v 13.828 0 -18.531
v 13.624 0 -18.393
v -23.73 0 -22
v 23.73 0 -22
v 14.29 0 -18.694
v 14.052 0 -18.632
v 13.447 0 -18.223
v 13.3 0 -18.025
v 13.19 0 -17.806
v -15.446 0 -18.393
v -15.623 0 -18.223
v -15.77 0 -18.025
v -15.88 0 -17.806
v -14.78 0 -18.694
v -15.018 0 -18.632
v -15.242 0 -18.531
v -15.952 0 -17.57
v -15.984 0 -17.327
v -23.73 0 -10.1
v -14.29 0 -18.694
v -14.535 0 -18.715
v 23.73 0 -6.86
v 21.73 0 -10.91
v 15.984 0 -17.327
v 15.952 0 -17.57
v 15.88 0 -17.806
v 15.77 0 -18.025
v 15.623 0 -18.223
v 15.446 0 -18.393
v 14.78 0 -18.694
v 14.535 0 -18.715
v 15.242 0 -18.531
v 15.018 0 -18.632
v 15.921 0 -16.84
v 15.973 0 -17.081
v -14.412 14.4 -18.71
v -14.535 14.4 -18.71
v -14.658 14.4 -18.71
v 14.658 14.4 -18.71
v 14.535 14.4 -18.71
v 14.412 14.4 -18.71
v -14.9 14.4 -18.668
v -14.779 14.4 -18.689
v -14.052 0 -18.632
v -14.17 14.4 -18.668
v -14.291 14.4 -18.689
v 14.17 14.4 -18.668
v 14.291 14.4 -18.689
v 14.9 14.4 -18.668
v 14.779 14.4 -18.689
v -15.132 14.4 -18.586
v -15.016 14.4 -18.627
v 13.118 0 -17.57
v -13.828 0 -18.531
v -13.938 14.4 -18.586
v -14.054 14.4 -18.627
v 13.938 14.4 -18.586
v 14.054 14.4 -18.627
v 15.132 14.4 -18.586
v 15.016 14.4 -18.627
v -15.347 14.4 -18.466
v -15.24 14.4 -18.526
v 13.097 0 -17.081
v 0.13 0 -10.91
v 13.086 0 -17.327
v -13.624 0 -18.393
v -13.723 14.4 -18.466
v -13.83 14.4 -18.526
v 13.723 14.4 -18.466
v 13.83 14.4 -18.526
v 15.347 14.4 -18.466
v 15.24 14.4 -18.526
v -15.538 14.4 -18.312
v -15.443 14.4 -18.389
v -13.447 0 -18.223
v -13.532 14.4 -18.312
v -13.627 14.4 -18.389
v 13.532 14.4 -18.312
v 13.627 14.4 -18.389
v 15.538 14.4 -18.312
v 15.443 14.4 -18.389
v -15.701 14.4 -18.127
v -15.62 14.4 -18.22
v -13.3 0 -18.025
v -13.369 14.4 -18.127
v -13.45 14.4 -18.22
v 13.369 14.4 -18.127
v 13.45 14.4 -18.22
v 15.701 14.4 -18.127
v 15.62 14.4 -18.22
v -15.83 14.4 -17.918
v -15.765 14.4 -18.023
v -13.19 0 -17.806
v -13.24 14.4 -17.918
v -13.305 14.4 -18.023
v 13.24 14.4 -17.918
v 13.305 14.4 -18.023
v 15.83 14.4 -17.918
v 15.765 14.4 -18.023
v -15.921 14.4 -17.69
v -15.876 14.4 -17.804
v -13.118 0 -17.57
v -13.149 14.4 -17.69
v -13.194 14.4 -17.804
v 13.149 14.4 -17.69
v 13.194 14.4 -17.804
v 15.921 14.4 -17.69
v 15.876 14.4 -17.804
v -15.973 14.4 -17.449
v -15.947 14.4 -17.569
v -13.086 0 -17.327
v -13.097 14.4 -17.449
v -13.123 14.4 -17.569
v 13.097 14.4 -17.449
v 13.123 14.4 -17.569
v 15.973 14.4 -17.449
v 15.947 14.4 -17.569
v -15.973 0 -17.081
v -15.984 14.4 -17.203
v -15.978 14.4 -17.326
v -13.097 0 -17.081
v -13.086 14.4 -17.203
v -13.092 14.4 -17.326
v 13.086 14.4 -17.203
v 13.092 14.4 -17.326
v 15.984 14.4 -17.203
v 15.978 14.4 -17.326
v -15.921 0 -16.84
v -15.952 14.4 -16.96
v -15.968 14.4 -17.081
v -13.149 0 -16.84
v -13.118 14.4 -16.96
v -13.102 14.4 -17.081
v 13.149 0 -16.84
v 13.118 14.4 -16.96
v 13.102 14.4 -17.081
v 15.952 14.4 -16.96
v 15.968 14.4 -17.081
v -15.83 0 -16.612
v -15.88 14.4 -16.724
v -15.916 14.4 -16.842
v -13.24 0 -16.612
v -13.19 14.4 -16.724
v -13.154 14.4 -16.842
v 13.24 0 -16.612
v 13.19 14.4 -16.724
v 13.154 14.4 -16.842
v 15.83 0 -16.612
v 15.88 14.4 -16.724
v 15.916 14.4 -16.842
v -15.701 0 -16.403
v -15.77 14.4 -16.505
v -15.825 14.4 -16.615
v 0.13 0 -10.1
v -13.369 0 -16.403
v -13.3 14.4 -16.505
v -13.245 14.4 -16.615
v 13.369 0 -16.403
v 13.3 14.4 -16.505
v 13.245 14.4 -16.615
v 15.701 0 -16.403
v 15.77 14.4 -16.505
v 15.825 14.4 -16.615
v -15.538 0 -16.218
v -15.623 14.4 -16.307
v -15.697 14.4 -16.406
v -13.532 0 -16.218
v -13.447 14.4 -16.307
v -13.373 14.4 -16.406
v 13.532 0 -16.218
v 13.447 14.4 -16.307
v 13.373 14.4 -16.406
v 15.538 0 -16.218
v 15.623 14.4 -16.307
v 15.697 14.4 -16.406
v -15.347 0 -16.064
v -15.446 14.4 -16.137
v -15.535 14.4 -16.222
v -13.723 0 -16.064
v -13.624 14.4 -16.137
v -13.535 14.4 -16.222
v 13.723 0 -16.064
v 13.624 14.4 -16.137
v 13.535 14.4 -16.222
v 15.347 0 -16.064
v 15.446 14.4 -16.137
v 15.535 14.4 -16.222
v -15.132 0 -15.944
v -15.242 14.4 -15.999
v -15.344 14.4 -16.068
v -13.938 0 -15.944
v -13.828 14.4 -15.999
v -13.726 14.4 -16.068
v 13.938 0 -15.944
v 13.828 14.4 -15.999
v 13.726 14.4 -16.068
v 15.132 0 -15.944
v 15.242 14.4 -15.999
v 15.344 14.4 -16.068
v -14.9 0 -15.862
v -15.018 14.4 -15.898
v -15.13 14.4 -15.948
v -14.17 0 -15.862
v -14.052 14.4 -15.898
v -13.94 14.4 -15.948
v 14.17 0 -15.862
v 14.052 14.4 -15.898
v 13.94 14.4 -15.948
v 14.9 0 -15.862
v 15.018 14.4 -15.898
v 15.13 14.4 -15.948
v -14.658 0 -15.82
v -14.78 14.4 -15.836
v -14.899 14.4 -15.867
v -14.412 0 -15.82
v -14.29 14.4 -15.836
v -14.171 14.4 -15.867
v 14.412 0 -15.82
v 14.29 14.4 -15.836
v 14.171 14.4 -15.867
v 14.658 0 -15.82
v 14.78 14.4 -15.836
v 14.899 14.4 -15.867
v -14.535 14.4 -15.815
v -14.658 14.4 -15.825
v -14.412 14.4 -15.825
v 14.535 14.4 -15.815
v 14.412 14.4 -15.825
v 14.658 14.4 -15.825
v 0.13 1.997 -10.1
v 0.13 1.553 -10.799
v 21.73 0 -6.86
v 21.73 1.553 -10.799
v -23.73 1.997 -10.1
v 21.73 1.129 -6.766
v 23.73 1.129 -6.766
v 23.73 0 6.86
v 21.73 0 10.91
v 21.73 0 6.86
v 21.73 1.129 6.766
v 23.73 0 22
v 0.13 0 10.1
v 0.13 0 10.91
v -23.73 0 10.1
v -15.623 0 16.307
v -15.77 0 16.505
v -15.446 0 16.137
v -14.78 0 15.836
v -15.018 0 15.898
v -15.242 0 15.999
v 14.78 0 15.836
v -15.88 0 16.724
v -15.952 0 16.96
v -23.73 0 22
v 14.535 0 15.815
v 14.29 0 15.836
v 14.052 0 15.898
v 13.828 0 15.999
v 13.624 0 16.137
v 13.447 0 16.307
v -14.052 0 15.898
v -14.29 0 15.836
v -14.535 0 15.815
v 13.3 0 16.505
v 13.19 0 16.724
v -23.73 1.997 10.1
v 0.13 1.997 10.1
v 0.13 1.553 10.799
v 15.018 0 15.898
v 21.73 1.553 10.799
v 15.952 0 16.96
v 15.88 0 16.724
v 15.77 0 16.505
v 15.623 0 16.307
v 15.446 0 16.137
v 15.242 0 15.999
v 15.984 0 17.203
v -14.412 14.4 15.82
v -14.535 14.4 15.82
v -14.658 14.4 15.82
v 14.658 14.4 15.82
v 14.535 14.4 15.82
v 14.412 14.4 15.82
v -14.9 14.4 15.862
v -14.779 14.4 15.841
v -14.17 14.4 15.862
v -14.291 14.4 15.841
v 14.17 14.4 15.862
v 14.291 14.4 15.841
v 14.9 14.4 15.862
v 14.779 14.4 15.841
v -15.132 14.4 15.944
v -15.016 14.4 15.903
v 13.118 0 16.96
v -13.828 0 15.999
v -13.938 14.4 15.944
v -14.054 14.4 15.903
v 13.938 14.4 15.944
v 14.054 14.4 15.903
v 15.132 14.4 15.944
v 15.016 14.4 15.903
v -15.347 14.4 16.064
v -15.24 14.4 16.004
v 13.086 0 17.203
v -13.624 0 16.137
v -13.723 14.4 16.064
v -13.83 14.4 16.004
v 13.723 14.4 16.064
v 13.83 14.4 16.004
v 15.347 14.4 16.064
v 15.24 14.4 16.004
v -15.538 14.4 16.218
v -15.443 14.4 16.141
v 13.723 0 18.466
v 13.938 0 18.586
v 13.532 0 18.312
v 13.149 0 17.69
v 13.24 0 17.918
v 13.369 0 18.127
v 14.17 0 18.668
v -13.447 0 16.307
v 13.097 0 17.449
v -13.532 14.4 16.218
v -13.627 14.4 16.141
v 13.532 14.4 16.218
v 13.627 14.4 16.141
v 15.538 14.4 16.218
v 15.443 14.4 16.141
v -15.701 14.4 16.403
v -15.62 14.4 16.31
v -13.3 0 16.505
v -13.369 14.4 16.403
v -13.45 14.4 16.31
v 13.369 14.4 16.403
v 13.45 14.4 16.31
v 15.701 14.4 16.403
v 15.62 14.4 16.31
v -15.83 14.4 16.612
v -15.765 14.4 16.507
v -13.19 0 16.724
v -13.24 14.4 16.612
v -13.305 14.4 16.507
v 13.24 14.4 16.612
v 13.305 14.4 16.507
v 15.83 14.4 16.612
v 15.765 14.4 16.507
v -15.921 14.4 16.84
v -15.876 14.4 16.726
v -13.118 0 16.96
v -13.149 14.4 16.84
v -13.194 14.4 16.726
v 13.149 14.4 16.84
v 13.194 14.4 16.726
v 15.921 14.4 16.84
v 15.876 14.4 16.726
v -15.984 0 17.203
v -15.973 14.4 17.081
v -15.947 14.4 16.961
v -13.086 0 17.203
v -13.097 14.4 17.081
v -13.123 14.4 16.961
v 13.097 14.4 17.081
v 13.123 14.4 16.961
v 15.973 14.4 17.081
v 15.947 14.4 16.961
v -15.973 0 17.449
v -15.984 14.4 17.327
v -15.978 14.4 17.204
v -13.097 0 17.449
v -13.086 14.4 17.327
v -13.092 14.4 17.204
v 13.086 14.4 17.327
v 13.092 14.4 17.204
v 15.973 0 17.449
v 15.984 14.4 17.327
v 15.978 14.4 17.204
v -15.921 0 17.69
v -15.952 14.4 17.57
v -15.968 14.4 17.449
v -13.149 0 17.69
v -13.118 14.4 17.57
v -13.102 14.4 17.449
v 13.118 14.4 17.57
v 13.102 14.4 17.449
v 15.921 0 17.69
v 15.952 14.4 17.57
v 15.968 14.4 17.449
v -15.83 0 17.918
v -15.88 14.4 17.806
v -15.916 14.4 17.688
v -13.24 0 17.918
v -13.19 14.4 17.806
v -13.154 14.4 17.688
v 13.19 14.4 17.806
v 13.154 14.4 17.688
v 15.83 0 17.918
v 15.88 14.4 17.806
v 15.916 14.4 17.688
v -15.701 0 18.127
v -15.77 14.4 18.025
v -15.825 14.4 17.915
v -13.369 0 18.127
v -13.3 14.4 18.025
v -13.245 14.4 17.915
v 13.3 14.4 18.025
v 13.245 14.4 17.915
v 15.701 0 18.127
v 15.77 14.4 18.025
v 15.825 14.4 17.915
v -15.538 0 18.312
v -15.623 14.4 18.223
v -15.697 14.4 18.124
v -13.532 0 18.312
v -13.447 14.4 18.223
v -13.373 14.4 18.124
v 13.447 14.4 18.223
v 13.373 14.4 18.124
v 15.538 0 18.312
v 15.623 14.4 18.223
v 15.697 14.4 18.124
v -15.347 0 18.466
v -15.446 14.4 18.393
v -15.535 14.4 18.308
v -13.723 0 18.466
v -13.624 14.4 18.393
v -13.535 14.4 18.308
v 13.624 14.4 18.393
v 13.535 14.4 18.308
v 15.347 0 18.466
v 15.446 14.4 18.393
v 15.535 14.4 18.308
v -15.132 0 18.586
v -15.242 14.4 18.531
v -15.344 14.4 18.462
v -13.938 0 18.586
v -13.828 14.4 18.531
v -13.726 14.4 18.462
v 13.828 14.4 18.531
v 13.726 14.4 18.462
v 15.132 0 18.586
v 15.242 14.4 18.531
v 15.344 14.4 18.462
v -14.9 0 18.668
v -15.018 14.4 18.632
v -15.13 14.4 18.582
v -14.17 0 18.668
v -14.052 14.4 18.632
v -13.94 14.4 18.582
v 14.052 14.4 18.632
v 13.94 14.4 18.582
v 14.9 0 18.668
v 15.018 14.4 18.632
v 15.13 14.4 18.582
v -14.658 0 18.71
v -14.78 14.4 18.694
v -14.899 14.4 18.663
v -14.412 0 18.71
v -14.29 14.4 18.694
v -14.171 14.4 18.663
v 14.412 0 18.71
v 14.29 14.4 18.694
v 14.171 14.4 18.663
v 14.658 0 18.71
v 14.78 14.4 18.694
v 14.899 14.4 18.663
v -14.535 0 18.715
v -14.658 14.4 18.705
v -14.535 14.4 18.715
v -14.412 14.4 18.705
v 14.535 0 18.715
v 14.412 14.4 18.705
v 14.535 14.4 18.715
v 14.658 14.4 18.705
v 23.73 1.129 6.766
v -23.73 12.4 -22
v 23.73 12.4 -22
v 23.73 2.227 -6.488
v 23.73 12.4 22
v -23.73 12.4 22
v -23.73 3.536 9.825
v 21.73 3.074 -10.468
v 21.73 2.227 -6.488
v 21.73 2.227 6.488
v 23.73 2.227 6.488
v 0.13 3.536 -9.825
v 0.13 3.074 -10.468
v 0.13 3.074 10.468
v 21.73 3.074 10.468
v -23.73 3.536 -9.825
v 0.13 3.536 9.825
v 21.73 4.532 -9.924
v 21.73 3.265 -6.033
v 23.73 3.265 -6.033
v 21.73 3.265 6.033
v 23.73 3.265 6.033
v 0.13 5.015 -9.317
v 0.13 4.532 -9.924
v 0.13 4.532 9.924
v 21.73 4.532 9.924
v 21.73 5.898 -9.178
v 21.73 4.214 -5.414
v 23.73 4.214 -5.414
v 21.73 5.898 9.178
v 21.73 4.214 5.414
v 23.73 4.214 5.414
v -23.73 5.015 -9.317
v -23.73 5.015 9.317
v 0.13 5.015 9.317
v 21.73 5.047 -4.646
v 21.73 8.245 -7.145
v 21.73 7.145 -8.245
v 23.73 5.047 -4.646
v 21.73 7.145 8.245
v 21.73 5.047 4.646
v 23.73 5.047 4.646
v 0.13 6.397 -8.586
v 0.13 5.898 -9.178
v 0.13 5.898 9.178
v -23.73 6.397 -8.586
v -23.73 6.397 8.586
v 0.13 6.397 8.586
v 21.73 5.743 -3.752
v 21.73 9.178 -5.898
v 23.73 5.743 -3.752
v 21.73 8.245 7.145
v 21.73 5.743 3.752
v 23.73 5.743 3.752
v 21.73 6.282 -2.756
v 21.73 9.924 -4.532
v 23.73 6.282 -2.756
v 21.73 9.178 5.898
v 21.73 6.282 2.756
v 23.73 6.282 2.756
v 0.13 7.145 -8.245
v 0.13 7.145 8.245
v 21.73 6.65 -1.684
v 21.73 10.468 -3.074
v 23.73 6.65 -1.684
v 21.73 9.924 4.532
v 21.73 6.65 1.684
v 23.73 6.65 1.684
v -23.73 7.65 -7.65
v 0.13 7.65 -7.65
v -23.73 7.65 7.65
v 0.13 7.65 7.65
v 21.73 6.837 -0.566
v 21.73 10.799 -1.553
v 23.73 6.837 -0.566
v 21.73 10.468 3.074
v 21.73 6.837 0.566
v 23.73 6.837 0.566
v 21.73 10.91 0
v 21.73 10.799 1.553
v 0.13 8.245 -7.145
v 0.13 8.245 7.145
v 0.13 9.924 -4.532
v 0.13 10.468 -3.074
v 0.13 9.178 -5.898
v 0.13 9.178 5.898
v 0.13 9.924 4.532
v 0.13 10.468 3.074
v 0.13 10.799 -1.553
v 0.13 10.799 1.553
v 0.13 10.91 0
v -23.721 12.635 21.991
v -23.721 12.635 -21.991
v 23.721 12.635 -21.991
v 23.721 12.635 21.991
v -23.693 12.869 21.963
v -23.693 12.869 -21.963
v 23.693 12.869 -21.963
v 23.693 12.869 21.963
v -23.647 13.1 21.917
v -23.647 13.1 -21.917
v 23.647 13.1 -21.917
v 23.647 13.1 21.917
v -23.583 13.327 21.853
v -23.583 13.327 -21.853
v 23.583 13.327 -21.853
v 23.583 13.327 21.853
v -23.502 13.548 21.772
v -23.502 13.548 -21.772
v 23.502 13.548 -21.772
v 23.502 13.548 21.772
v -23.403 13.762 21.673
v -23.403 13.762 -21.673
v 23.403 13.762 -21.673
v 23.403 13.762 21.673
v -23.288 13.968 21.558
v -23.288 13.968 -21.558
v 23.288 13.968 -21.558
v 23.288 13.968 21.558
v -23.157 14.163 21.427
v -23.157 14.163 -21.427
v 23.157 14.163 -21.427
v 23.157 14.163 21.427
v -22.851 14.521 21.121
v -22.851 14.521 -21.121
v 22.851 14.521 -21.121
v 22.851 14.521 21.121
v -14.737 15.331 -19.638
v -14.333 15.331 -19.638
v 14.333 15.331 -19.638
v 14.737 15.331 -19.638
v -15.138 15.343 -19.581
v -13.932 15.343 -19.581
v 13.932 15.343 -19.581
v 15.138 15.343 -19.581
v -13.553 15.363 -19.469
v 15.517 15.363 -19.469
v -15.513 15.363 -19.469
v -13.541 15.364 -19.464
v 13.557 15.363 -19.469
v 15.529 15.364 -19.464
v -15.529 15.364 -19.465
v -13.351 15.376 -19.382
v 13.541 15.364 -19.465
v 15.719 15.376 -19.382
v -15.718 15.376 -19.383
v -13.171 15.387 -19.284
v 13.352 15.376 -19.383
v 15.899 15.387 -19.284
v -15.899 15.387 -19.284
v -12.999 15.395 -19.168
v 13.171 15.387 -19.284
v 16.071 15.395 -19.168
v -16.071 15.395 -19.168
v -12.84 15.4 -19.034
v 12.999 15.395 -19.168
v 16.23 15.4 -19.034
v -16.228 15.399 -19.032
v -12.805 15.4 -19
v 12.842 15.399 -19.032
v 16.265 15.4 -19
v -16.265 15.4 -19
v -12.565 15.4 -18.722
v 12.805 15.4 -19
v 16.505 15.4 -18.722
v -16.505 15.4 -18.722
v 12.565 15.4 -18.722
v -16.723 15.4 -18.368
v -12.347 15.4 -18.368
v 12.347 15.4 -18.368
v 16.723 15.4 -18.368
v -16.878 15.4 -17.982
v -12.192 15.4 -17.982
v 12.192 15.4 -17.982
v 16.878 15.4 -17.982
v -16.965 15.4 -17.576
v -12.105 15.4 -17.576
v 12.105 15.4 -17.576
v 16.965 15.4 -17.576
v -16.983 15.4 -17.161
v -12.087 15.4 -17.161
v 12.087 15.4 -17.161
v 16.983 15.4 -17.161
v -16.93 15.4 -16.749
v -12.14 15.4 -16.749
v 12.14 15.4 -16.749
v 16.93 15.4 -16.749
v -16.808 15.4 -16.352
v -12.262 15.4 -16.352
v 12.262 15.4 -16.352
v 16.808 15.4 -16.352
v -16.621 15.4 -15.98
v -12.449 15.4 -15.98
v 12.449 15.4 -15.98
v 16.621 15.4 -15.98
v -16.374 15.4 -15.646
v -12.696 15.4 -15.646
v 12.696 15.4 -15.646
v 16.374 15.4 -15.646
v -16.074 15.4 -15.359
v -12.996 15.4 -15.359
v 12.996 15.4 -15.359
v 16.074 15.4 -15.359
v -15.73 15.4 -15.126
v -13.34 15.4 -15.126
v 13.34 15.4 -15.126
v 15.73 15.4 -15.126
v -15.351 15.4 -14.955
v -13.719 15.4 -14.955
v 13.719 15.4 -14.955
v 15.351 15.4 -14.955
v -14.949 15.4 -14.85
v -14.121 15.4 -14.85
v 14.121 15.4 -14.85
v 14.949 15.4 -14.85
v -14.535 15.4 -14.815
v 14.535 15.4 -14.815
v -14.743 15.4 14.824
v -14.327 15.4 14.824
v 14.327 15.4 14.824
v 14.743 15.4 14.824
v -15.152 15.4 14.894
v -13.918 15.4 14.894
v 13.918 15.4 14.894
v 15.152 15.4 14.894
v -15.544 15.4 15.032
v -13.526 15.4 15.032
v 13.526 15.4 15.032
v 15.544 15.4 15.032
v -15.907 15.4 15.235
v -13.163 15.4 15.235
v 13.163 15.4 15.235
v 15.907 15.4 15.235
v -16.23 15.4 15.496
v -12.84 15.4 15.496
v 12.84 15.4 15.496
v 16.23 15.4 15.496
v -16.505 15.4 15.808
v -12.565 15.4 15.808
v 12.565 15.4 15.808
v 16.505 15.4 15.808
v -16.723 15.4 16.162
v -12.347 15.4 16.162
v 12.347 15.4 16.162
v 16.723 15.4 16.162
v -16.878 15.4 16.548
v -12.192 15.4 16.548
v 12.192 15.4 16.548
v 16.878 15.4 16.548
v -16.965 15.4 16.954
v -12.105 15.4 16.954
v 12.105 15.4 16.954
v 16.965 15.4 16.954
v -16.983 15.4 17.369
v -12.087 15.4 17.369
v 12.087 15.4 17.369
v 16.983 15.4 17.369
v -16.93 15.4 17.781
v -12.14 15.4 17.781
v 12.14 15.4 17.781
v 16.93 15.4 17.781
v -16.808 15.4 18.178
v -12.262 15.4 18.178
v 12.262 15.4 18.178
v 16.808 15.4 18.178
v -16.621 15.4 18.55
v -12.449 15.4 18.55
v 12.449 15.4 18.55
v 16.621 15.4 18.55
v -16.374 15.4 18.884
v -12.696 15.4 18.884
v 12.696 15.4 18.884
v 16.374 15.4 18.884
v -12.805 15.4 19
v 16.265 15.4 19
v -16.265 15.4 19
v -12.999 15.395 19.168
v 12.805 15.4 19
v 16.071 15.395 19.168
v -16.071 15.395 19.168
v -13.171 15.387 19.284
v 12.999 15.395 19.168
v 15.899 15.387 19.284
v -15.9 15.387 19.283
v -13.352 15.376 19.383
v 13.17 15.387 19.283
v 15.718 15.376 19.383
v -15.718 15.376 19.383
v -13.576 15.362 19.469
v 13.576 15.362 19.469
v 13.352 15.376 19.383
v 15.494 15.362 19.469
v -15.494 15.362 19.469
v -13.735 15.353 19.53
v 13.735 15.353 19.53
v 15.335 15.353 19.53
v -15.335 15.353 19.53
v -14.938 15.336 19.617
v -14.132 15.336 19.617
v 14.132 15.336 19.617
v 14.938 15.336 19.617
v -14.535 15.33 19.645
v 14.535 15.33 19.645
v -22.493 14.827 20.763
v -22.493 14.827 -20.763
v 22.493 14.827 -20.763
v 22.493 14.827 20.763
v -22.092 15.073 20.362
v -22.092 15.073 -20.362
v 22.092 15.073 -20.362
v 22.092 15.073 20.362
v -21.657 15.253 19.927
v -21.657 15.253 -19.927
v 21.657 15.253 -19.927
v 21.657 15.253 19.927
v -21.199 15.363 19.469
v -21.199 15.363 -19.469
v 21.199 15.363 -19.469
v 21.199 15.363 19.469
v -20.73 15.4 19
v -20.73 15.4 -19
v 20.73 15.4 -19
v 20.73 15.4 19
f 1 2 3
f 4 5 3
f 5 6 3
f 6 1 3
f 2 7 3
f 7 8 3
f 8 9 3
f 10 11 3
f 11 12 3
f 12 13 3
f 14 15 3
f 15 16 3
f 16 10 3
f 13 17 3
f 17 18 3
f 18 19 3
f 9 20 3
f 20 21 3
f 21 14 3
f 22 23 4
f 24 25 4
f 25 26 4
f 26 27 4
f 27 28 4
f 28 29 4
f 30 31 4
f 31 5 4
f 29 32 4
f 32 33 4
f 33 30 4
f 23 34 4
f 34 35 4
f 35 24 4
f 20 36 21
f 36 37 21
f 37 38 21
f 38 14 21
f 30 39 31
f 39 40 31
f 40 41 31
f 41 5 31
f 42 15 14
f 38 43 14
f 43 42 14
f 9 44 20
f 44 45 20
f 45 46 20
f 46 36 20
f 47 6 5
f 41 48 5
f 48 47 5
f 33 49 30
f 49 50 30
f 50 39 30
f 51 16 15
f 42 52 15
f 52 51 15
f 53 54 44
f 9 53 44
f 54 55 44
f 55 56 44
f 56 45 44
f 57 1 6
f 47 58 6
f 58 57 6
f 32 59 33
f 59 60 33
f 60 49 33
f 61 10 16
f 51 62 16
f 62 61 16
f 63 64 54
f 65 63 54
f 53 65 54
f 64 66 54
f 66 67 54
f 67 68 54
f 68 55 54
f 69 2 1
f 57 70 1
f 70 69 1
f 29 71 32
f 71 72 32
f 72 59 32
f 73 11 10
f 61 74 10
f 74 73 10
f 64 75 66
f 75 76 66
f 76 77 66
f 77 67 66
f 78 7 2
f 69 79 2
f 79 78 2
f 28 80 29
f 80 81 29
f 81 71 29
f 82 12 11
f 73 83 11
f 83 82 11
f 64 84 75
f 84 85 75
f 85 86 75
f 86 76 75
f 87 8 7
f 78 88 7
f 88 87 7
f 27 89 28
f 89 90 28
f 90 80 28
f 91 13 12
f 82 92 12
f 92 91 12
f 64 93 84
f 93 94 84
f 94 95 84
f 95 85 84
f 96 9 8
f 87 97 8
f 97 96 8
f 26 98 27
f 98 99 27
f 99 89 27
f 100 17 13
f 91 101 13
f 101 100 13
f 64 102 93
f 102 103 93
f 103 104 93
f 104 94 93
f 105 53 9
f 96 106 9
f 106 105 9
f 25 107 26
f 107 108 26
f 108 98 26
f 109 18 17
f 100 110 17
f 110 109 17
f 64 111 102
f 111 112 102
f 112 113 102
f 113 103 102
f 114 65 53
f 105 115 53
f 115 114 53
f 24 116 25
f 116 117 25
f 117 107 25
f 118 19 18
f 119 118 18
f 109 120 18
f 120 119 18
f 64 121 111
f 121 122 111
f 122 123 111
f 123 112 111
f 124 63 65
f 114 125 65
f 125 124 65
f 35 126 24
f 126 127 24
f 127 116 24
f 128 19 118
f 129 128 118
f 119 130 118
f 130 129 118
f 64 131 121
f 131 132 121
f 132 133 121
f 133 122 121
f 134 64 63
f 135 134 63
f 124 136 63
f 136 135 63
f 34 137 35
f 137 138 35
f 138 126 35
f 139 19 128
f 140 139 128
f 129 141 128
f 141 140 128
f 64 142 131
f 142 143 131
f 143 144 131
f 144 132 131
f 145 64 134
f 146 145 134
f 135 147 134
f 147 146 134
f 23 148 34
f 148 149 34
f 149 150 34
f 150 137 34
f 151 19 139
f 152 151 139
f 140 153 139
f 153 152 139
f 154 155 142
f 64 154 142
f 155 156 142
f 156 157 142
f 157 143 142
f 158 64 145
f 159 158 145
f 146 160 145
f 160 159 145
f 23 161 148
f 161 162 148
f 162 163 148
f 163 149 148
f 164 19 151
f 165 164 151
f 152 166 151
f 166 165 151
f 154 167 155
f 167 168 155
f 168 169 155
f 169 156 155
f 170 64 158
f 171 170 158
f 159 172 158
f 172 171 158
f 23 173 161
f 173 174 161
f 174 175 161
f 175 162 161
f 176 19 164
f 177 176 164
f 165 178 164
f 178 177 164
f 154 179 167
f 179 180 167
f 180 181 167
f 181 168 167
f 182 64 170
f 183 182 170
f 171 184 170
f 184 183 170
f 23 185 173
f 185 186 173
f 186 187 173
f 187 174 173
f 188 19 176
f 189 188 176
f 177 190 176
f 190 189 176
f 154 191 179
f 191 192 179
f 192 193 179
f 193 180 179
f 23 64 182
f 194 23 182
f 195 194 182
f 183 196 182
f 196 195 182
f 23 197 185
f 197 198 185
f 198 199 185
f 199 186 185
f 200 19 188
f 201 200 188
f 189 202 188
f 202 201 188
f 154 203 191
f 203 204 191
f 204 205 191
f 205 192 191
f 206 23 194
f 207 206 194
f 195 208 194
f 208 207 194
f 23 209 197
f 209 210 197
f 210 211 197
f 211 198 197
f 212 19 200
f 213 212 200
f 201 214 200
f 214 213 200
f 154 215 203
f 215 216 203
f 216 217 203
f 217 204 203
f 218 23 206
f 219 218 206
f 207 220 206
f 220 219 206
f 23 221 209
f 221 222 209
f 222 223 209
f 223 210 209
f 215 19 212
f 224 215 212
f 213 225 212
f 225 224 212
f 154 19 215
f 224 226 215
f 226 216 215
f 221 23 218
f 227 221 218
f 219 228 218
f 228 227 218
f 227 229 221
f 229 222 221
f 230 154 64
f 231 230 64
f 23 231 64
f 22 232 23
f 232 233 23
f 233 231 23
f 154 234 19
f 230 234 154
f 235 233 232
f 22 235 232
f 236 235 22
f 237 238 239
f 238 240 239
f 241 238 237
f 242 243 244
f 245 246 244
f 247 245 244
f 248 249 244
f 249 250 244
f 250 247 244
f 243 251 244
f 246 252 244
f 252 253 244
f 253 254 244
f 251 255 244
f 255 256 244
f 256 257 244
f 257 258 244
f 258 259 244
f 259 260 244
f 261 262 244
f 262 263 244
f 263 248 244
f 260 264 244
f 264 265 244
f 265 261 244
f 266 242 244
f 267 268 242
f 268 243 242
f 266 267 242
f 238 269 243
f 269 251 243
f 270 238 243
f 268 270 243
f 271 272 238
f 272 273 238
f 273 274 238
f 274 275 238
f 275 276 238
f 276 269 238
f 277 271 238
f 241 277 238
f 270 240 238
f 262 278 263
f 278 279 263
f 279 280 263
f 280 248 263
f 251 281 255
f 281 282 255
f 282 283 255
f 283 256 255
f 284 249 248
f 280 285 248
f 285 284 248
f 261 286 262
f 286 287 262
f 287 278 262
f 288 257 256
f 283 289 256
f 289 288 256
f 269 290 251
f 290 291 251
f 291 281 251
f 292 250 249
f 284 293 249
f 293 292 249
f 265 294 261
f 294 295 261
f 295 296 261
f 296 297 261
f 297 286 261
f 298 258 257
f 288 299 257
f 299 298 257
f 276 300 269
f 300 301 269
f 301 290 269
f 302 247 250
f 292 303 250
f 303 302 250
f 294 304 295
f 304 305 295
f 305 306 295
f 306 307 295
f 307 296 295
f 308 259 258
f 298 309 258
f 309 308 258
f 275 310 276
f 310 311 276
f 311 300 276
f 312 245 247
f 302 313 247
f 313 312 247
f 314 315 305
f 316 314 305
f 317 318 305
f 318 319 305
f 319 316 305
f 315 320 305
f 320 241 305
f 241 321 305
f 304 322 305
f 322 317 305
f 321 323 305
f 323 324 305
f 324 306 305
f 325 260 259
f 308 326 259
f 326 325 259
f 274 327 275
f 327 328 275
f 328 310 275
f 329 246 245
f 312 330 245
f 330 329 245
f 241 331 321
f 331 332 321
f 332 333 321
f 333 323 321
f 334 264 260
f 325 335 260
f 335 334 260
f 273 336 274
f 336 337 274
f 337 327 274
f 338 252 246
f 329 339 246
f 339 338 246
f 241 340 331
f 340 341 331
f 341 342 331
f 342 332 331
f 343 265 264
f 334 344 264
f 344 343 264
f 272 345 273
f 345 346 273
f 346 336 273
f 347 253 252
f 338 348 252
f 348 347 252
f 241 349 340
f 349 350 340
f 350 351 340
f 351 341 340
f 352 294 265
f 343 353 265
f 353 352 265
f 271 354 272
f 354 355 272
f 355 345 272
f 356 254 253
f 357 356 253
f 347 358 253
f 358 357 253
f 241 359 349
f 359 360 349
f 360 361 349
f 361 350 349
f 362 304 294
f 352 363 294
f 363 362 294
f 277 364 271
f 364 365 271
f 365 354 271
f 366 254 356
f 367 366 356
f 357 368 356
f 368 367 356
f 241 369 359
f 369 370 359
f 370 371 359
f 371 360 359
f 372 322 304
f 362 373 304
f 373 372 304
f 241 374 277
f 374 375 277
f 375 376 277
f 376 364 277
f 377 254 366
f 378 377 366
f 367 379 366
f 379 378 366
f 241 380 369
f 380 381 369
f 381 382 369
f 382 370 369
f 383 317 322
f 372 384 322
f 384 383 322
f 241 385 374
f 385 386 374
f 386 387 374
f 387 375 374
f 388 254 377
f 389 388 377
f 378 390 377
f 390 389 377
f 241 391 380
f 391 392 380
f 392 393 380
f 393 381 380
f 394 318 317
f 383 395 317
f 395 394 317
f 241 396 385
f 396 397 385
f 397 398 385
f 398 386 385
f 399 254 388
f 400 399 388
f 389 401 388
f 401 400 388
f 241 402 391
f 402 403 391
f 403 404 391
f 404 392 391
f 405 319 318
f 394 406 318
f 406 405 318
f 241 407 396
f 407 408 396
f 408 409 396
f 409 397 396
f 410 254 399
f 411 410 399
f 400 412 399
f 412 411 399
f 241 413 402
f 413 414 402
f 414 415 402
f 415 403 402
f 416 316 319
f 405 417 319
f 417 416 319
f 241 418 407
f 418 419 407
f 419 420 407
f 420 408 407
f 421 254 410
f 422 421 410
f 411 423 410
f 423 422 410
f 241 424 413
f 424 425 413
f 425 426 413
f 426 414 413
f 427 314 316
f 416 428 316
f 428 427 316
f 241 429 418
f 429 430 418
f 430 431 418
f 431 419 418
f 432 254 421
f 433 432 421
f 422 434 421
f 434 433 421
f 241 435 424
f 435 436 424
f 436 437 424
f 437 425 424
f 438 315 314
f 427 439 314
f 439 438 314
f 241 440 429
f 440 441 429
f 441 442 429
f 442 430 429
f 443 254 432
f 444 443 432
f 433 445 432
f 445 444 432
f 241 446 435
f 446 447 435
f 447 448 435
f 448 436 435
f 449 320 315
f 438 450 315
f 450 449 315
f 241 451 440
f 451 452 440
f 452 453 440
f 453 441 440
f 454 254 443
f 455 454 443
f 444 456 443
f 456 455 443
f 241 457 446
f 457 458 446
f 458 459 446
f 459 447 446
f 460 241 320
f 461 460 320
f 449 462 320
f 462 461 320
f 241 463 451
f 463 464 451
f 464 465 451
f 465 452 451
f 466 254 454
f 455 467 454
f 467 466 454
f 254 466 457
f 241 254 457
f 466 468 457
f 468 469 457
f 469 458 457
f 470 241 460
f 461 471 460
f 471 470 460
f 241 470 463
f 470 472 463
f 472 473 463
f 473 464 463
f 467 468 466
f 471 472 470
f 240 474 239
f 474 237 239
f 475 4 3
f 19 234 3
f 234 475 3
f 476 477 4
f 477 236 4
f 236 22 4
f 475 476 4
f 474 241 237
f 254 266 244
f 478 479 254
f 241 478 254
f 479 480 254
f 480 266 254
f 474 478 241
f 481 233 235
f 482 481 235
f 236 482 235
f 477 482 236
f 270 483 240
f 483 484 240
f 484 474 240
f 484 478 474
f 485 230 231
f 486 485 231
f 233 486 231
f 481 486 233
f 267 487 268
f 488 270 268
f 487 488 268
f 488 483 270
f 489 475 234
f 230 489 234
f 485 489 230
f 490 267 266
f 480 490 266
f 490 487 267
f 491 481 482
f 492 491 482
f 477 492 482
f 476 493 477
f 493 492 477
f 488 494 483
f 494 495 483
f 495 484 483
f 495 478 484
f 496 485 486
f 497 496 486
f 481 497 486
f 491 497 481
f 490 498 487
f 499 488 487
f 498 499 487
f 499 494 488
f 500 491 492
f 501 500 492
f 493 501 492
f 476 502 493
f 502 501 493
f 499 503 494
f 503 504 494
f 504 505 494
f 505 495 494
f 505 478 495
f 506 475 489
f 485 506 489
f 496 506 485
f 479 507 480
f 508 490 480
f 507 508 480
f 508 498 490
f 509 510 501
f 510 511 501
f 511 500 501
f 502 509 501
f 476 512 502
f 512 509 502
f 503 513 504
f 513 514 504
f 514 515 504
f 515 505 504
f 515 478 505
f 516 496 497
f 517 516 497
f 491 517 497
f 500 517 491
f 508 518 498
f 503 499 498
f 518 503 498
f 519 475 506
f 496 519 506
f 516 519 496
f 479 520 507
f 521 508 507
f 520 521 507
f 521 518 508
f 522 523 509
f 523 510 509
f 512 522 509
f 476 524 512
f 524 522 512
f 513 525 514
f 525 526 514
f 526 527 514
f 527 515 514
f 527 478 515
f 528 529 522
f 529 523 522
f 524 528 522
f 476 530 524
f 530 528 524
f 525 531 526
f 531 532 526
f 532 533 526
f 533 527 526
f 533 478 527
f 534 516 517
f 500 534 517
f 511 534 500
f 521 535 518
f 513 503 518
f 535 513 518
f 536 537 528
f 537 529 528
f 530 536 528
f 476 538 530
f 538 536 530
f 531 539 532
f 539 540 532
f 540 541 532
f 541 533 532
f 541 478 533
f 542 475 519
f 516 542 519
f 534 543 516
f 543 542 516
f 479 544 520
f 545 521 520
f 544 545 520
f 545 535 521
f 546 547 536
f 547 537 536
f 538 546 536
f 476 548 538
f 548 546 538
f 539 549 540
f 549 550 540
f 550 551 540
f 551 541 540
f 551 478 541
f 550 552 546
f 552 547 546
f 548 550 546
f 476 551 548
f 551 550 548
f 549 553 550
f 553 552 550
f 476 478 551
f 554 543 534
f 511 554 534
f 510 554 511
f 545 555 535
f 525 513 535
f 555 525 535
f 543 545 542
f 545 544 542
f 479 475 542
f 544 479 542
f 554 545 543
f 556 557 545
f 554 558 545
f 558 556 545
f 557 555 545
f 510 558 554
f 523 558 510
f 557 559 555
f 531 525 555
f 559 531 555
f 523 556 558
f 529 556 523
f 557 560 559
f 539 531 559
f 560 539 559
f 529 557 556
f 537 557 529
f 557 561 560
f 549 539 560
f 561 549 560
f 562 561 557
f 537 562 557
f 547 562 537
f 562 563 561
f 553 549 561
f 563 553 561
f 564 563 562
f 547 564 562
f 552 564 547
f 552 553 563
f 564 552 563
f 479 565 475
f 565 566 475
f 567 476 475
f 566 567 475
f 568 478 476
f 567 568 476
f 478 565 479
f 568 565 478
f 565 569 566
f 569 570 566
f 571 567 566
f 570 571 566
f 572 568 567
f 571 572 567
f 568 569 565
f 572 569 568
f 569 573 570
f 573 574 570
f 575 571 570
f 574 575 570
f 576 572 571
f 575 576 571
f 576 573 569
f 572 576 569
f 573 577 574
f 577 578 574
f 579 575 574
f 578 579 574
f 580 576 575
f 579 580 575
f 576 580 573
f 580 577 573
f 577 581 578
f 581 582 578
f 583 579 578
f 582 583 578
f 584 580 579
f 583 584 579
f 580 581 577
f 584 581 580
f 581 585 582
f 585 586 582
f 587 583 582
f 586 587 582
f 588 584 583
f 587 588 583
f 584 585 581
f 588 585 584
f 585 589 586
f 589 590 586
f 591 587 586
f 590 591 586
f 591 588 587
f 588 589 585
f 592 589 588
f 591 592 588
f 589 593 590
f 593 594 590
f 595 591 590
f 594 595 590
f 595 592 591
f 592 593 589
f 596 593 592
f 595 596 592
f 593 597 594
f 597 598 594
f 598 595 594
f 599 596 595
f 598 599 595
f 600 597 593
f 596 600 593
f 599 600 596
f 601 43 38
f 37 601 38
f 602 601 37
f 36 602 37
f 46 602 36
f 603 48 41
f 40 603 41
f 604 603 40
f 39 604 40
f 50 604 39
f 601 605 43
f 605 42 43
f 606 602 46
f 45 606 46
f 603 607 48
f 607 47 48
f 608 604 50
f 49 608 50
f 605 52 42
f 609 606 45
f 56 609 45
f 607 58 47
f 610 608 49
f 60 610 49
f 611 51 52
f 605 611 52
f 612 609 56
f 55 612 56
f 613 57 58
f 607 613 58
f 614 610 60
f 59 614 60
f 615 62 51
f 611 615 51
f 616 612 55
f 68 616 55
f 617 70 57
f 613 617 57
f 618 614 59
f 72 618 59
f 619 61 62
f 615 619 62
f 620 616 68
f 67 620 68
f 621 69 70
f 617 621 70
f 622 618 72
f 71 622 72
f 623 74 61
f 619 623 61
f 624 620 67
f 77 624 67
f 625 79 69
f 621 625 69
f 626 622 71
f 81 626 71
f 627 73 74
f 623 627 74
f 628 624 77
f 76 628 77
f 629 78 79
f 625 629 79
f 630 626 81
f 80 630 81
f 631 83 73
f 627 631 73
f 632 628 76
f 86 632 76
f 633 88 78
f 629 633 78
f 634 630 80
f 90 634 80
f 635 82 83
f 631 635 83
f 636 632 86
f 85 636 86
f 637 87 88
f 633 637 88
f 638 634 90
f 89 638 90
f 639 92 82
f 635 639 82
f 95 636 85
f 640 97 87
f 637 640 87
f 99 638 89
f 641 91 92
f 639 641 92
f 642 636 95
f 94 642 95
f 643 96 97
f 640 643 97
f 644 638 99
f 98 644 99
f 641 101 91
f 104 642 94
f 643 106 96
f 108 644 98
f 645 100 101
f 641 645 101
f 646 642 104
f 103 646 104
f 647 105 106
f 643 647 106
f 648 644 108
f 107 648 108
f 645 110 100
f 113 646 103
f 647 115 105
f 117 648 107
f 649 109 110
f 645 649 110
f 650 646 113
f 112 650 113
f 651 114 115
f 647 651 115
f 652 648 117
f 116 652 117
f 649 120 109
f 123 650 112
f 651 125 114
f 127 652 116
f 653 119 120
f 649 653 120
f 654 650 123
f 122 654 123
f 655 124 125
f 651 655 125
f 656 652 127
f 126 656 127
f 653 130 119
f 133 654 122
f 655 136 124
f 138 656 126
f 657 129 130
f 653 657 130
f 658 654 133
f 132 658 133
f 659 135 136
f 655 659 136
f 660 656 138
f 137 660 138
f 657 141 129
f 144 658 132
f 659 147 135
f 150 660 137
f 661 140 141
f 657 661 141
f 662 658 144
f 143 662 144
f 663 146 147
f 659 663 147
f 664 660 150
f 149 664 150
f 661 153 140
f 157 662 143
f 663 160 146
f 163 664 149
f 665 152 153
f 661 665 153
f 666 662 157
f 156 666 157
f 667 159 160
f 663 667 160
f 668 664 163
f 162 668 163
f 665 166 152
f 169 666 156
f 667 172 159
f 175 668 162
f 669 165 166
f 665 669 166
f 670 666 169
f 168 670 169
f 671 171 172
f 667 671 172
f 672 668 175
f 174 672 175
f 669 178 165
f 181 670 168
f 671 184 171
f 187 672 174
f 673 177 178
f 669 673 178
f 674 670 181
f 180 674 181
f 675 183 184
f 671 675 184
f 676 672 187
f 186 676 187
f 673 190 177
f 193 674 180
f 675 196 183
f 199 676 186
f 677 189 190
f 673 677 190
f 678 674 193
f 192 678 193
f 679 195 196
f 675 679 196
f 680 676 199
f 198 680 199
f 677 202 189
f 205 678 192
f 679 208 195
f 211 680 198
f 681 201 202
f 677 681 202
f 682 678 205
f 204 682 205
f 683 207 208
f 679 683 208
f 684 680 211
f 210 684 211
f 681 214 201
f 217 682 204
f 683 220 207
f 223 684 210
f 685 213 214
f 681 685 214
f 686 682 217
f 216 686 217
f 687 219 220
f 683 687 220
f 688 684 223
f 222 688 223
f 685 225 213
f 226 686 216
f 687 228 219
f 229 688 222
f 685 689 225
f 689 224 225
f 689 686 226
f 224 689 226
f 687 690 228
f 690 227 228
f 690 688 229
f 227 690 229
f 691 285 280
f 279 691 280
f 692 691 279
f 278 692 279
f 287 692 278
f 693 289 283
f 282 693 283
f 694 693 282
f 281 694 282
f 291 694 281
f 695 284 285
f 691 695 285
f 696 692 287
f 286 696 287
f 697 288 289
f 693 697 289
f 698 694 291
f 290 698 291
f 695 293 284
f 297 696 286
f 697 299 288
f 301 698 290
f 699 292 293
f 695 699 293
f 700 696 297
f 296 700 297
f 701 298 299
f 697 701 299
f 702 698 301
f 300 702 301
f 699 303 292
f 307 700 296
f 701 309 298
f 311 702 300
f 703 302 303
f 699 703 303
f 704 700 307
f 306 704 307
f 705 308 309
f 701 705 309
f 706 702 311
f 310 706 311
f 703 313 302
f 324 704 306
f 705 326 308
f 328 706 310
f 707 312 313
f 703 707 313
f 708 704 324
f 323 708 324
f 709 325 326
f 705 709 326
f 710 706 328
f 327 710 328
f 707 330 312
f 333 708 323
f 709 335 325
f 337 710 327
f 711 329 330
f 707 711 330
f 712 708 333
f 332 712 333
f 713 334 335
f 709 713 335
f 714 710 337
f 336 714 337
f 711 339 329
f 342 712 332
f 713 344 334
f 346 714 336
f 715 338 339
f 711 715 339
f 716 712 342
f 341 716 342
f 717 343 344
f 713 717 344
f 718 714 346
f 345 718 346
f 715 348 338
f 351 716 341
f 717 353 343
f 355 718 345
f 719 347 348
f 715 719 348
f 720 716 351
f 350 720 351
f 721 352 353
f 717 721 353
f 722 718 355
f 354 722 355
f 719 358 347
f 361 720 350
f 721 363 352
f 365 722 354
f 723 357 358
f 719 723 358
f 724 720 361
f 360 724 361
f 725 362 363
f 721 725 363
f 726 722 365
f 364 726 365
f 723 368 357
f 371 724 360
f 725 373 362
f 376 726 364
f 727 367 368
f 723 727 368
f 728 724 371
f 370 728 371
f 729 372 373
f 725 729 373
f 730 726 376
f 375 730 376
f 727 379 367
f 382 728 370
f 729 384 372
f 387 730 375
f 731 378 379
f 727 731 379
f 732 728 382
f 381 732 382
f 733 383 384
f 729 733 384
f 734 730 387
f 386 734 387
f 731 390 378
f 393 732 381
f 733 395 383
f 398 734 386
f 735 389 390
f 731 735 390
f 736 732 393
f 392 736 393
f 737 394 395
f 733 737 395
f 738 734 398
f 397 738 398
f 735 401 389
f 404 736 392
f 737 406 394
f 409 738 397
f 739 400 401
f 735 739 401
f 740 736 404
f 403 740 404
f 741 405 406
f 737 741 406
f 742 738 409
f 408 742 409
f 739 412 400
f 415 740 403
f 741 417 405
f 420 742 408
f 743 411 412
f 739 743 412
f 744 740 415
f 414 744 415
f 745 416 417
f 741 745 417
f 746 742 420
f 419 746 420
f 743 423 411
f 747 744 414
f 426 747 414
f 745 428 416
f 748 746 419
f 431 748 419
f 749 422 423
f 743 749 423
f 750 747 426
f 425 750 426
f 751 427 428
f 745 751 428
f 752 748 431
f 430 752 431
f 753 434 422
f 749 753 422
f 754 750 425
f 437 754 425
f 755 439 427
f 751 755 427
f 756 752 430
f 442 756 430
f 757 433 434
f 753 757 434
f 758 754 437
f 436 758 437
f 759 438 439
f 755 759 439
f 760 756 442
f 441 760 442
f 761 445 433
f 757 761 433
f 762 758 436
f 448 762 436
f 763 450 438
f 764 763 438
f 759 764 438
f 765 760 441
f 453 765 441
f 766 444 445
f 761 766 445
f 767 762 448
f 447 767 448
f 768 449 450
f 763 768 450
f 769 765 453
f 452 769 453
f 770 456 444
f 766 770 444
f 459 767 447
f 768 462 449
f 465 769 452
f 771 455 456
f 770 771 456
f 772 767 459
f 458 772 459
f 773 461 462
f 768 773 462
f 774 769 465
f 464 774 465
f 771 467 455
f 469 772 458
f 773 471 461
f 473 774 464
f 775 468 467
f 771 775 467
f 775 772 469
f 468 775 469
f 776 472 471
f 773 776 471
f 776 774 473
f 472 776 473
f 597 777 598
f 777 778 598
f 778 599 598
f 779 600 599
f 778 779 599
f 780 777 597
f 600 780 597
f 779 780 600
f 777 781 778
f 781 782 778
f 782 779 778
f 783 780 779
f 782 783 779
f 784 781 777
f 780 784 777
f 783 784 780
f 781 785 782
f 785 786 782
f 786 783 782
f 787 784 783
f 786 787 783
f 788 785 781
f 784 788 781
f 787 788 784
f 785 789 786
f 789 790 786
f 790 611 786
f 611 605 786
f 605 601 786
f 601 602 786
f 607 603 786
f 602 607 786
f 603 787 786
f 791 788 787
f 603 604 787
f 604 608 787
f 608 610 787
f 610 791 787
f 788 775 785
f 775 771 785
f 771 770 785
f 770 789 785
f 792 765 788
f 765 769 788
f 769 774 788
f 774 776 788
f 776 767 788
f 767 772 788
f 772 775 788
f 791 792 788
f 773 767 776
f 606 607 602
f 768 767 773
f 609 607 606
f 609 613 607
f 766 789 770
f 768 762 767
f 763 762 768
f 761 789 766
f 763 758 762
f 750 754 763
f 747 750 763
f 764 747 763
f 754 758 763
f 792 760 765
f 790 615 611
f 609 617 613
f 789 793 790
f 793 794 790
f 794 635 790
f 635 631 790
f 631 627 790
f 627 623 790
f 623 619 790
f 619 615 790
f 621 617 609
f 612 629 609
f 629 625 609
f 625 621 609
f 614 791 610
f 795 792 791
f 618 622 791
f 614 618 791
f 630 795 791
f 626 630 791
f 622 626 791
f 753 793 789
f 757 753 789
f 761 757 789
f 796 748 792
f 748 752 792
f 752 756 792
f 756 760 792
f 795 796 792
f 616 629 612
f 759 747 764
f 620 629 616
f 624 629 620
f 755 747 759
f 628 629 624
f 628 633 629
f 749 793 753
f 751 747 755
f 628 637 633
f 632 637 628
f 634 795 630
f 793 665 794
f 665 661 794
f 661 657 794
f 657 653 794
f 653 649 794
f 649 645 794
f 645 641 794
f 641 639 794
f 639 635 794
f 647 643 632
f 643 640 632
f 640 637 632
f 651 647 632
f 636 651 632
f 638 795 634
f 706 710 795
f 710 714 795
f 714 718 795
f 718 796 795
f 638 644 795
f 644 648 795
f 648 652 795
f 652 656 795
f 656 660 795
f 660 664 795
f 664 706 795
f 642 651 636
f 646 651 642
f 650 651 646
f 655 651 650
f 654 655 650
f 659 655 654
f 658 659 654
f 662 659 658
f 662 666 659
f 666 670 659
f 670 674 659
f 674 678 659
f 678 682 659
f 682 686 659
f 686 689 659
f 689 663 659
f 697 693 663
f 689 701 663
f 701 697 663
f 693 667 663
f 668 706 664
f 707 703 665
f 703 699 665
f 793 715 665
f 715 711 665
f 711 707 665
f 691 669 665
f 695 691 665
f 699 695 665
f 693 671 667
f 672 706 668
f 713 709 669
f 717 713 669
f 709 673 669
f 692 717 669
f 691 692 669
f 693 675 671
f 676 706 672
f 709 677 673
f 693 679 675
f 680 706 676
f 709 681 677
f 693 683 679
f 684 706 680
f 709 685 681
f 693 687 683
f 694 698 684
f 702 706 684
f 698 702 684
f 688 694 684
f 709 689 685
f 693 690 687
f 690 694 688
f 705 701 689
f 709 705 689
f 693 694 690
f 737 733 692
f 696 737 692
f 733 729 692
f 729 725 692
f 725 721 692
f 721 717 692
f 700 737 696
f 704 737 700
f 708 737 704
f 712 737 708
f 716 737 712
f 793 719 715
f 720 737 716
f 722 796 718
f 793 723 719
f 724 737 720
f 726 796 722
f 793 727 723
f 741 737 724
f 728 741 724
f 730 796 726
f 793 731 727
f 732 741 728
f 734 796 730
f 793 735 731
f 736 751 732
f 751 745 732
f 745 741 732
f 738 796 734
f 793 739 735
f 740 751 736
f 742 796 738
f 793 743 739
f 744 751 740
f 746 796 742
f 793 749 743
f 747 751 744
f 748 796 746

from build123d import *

# Parameters (mm, degrees)
SKETCH1_W           = 47.46
SKETCH1_H           = 44
BOSS_EXTRUDE1_DEPTH = 15.4
SKETCH2_W           = 21.6
SKETCH2_H           = 21.82
CUT_EXTRUDE1_DEPTH  = 10.91
FILLET1_R           = 10.91
SKETCH4_W           = 23.86
SKETCH4_H           = 20.2
CUT_EXTRUDE2_DEPTH  = 7.65
SKETCH8_R           = 1.45
CUT_EXTRUDE3_DEPTH  = 20.18
CHAMFER1_SIZE       = 1
FILLET2_R           = 3
SKETCH9_R           = 6.86
CUT_EXTRUDE4_DEPTH  = 2.18
BOSS_EXTRUDE3_DEPTH = 23.86


# Some blends are built 0.0001 mm under size
with BuildPart() as part:
    # Sketch1 → Boss-Extrude1 (new body)
    with BuildSketch(Plane(origin=(0, 0, 0), x_dir=(1, 0, 0), z_dir=(0, 1, 0))):
        Rectangle(SKETCH1_W, SKETCH1_H)
    extrude(amount=BOSS_EXTRUDE1_DEPTH)

    # Sketch2 → Cut-Extrude1 (cut)
    with BuildSketch(Plane.XZ):
        with Locations((10.93, 0)):
            Rectangle(SKETCH2_W, SKETCH2_H)
    extrude(amount=-CUT_EXTRUDE1_DEPTH, mode=Mode.SUBTRACT)

    # Fillet1
    fillet1_edges = [part.edges().sort_by_distance(p)[0] for p in [
        (10.93, 10.91, -10.91),
        (10.93, 10.91, 10.91),
    ]]
    fillet(fillet1_edges, radius=FILLET1_R - 0.0001)  # a hair under: the kernel refuses the full size

    # Sketch4 → Cut-Extrude2 (cut)
    with BuildSketch(Plane.XZ):
        with Locations((-11.8, 0)):
            Rectangle(SKETCH4_W, SKETCH4_H)
    extrude(amount=-CUT_EXTRUDE2_DEPTH, mode=Mode.SUBTRACT)

    # Sketch8 → Cut-Extrude3 (cut)
    with BuildSketch(Plane.XZ):
        with Locations(Location((14.535, -17.265, 0), (0, 0, 270))):
            Circle(SKETCH8_R)
        with Locations(Location((-14.535, -17.265, 0), (0, 0, 270))):
            Circle(SKETCH8_R)
    cut_extrude3 = extrude(amount=-CUT_EXTRUDE3_DEPTH, mode=Mode.SUBTRACT)

    # Mirror1: Cut-Extrude3 across plane
    add(cut_extrude3.mirror(Plane(origin=(0, 0, 0), x_dir=(1, 0, 0), z_dir=(0, 0, -1))), mode=Mode.SUBTRACT)

    # Chamfer1
    chamfer1_edges = [part.edges().sort_by_distance(p)[0] for p in [
        (14.535, 15.4, -15.815),
        (-14.535, 15.4, -15.815),
        (14.535, 15.4, 15.815),
        (-14.535, 15.4, 15.815),
    ]]
    chamfer(chamfer1_edges, length=CHAMFER1_SIZE)

    # Fillet2
    # the kernel refuses this fillet: 3 mm, written as the material it takes off along each edge
    with BuildSketch(Plane(origin=(23.73, 15.4, 29.5), x_dir=(-1, 0, 0), z_dir=(0, 0, -1)), Plane(origin=(-23.73, 15.4, -29.5), x_dir=(1, 0, 0), z_dir=(0, 0, 1))) as fillet2_piece_1:
        with BuildLine():
            CenterArc((FILLET2_R, -FILLET2_R), FILLET2_R, 90, 90)
            Line((0, -FILLET2_R), (0, 0))
            Line((0, 0), (FILLET2_R, 0))
        make_face()
    extrude(amount=59, mode=Mode.SUBTRACT)
    with BuildSketch(Plane(origin=(31.23, 15.4, -22), x_dir=(0, 0, 1), z_dir=(-1, 0, 0)), Plane(origin=(-31.23, 15.4, 22), x_dir=(0, 0, -1), z_dir=(1, 0, 0))) as fillet2_piece_2:
        with BuildLine():
            CenterArc((FILLET2_R, -FILLET2_R), FILLET2_R, 90, 90)
            Line((0, -FILLET2_R), (0, 0))
            Line((0, 0), (FILLET2_R, 0))
        make_face()
    extrude(amount=62.46, mode=Mode.SUBTRACT)

    # Sketch9 → Cut-Extrude4 (cut)
    with BuildSketch(Plane(origin=(23.73, 0, 0), x_dir=(0, 0, -1), z_dir=(1, 0, 0))):
        Circle(SKETCH9_R)
    extrude(amount=-CUT_EXTRUDE4_DEPTH, mode=Mode.SUBTRACT)

    # Sketch10 → Boss-Extrude3 (add)
    with BuildSketch(Plane.ZY.offset(23.73)):
        with BuildLine():
            Line((-7.65, 7.65), (-10.1, 7.65))
            Line((-10.1, 7.65), (-10.1, 1.997052779))
            ThreePointArc((-10.1, 1.997052779), (-9.316559187, 5.014899131), (-7.65, 7.65))
        make_face()
        with BuildLine():
            Line((10.1, 1.997052779), (10.1, 7.65))
            Line((10.1, 7.65), (7.65, 7.65))
            ThreePointArc((7.65, 7.65), (9.316559187, 5.014899131), (10.1, 1.997052779))
        make_face()
    extrude(amount=-BOSS_EXTRUDE3_DEPTH)


solid = part.part
